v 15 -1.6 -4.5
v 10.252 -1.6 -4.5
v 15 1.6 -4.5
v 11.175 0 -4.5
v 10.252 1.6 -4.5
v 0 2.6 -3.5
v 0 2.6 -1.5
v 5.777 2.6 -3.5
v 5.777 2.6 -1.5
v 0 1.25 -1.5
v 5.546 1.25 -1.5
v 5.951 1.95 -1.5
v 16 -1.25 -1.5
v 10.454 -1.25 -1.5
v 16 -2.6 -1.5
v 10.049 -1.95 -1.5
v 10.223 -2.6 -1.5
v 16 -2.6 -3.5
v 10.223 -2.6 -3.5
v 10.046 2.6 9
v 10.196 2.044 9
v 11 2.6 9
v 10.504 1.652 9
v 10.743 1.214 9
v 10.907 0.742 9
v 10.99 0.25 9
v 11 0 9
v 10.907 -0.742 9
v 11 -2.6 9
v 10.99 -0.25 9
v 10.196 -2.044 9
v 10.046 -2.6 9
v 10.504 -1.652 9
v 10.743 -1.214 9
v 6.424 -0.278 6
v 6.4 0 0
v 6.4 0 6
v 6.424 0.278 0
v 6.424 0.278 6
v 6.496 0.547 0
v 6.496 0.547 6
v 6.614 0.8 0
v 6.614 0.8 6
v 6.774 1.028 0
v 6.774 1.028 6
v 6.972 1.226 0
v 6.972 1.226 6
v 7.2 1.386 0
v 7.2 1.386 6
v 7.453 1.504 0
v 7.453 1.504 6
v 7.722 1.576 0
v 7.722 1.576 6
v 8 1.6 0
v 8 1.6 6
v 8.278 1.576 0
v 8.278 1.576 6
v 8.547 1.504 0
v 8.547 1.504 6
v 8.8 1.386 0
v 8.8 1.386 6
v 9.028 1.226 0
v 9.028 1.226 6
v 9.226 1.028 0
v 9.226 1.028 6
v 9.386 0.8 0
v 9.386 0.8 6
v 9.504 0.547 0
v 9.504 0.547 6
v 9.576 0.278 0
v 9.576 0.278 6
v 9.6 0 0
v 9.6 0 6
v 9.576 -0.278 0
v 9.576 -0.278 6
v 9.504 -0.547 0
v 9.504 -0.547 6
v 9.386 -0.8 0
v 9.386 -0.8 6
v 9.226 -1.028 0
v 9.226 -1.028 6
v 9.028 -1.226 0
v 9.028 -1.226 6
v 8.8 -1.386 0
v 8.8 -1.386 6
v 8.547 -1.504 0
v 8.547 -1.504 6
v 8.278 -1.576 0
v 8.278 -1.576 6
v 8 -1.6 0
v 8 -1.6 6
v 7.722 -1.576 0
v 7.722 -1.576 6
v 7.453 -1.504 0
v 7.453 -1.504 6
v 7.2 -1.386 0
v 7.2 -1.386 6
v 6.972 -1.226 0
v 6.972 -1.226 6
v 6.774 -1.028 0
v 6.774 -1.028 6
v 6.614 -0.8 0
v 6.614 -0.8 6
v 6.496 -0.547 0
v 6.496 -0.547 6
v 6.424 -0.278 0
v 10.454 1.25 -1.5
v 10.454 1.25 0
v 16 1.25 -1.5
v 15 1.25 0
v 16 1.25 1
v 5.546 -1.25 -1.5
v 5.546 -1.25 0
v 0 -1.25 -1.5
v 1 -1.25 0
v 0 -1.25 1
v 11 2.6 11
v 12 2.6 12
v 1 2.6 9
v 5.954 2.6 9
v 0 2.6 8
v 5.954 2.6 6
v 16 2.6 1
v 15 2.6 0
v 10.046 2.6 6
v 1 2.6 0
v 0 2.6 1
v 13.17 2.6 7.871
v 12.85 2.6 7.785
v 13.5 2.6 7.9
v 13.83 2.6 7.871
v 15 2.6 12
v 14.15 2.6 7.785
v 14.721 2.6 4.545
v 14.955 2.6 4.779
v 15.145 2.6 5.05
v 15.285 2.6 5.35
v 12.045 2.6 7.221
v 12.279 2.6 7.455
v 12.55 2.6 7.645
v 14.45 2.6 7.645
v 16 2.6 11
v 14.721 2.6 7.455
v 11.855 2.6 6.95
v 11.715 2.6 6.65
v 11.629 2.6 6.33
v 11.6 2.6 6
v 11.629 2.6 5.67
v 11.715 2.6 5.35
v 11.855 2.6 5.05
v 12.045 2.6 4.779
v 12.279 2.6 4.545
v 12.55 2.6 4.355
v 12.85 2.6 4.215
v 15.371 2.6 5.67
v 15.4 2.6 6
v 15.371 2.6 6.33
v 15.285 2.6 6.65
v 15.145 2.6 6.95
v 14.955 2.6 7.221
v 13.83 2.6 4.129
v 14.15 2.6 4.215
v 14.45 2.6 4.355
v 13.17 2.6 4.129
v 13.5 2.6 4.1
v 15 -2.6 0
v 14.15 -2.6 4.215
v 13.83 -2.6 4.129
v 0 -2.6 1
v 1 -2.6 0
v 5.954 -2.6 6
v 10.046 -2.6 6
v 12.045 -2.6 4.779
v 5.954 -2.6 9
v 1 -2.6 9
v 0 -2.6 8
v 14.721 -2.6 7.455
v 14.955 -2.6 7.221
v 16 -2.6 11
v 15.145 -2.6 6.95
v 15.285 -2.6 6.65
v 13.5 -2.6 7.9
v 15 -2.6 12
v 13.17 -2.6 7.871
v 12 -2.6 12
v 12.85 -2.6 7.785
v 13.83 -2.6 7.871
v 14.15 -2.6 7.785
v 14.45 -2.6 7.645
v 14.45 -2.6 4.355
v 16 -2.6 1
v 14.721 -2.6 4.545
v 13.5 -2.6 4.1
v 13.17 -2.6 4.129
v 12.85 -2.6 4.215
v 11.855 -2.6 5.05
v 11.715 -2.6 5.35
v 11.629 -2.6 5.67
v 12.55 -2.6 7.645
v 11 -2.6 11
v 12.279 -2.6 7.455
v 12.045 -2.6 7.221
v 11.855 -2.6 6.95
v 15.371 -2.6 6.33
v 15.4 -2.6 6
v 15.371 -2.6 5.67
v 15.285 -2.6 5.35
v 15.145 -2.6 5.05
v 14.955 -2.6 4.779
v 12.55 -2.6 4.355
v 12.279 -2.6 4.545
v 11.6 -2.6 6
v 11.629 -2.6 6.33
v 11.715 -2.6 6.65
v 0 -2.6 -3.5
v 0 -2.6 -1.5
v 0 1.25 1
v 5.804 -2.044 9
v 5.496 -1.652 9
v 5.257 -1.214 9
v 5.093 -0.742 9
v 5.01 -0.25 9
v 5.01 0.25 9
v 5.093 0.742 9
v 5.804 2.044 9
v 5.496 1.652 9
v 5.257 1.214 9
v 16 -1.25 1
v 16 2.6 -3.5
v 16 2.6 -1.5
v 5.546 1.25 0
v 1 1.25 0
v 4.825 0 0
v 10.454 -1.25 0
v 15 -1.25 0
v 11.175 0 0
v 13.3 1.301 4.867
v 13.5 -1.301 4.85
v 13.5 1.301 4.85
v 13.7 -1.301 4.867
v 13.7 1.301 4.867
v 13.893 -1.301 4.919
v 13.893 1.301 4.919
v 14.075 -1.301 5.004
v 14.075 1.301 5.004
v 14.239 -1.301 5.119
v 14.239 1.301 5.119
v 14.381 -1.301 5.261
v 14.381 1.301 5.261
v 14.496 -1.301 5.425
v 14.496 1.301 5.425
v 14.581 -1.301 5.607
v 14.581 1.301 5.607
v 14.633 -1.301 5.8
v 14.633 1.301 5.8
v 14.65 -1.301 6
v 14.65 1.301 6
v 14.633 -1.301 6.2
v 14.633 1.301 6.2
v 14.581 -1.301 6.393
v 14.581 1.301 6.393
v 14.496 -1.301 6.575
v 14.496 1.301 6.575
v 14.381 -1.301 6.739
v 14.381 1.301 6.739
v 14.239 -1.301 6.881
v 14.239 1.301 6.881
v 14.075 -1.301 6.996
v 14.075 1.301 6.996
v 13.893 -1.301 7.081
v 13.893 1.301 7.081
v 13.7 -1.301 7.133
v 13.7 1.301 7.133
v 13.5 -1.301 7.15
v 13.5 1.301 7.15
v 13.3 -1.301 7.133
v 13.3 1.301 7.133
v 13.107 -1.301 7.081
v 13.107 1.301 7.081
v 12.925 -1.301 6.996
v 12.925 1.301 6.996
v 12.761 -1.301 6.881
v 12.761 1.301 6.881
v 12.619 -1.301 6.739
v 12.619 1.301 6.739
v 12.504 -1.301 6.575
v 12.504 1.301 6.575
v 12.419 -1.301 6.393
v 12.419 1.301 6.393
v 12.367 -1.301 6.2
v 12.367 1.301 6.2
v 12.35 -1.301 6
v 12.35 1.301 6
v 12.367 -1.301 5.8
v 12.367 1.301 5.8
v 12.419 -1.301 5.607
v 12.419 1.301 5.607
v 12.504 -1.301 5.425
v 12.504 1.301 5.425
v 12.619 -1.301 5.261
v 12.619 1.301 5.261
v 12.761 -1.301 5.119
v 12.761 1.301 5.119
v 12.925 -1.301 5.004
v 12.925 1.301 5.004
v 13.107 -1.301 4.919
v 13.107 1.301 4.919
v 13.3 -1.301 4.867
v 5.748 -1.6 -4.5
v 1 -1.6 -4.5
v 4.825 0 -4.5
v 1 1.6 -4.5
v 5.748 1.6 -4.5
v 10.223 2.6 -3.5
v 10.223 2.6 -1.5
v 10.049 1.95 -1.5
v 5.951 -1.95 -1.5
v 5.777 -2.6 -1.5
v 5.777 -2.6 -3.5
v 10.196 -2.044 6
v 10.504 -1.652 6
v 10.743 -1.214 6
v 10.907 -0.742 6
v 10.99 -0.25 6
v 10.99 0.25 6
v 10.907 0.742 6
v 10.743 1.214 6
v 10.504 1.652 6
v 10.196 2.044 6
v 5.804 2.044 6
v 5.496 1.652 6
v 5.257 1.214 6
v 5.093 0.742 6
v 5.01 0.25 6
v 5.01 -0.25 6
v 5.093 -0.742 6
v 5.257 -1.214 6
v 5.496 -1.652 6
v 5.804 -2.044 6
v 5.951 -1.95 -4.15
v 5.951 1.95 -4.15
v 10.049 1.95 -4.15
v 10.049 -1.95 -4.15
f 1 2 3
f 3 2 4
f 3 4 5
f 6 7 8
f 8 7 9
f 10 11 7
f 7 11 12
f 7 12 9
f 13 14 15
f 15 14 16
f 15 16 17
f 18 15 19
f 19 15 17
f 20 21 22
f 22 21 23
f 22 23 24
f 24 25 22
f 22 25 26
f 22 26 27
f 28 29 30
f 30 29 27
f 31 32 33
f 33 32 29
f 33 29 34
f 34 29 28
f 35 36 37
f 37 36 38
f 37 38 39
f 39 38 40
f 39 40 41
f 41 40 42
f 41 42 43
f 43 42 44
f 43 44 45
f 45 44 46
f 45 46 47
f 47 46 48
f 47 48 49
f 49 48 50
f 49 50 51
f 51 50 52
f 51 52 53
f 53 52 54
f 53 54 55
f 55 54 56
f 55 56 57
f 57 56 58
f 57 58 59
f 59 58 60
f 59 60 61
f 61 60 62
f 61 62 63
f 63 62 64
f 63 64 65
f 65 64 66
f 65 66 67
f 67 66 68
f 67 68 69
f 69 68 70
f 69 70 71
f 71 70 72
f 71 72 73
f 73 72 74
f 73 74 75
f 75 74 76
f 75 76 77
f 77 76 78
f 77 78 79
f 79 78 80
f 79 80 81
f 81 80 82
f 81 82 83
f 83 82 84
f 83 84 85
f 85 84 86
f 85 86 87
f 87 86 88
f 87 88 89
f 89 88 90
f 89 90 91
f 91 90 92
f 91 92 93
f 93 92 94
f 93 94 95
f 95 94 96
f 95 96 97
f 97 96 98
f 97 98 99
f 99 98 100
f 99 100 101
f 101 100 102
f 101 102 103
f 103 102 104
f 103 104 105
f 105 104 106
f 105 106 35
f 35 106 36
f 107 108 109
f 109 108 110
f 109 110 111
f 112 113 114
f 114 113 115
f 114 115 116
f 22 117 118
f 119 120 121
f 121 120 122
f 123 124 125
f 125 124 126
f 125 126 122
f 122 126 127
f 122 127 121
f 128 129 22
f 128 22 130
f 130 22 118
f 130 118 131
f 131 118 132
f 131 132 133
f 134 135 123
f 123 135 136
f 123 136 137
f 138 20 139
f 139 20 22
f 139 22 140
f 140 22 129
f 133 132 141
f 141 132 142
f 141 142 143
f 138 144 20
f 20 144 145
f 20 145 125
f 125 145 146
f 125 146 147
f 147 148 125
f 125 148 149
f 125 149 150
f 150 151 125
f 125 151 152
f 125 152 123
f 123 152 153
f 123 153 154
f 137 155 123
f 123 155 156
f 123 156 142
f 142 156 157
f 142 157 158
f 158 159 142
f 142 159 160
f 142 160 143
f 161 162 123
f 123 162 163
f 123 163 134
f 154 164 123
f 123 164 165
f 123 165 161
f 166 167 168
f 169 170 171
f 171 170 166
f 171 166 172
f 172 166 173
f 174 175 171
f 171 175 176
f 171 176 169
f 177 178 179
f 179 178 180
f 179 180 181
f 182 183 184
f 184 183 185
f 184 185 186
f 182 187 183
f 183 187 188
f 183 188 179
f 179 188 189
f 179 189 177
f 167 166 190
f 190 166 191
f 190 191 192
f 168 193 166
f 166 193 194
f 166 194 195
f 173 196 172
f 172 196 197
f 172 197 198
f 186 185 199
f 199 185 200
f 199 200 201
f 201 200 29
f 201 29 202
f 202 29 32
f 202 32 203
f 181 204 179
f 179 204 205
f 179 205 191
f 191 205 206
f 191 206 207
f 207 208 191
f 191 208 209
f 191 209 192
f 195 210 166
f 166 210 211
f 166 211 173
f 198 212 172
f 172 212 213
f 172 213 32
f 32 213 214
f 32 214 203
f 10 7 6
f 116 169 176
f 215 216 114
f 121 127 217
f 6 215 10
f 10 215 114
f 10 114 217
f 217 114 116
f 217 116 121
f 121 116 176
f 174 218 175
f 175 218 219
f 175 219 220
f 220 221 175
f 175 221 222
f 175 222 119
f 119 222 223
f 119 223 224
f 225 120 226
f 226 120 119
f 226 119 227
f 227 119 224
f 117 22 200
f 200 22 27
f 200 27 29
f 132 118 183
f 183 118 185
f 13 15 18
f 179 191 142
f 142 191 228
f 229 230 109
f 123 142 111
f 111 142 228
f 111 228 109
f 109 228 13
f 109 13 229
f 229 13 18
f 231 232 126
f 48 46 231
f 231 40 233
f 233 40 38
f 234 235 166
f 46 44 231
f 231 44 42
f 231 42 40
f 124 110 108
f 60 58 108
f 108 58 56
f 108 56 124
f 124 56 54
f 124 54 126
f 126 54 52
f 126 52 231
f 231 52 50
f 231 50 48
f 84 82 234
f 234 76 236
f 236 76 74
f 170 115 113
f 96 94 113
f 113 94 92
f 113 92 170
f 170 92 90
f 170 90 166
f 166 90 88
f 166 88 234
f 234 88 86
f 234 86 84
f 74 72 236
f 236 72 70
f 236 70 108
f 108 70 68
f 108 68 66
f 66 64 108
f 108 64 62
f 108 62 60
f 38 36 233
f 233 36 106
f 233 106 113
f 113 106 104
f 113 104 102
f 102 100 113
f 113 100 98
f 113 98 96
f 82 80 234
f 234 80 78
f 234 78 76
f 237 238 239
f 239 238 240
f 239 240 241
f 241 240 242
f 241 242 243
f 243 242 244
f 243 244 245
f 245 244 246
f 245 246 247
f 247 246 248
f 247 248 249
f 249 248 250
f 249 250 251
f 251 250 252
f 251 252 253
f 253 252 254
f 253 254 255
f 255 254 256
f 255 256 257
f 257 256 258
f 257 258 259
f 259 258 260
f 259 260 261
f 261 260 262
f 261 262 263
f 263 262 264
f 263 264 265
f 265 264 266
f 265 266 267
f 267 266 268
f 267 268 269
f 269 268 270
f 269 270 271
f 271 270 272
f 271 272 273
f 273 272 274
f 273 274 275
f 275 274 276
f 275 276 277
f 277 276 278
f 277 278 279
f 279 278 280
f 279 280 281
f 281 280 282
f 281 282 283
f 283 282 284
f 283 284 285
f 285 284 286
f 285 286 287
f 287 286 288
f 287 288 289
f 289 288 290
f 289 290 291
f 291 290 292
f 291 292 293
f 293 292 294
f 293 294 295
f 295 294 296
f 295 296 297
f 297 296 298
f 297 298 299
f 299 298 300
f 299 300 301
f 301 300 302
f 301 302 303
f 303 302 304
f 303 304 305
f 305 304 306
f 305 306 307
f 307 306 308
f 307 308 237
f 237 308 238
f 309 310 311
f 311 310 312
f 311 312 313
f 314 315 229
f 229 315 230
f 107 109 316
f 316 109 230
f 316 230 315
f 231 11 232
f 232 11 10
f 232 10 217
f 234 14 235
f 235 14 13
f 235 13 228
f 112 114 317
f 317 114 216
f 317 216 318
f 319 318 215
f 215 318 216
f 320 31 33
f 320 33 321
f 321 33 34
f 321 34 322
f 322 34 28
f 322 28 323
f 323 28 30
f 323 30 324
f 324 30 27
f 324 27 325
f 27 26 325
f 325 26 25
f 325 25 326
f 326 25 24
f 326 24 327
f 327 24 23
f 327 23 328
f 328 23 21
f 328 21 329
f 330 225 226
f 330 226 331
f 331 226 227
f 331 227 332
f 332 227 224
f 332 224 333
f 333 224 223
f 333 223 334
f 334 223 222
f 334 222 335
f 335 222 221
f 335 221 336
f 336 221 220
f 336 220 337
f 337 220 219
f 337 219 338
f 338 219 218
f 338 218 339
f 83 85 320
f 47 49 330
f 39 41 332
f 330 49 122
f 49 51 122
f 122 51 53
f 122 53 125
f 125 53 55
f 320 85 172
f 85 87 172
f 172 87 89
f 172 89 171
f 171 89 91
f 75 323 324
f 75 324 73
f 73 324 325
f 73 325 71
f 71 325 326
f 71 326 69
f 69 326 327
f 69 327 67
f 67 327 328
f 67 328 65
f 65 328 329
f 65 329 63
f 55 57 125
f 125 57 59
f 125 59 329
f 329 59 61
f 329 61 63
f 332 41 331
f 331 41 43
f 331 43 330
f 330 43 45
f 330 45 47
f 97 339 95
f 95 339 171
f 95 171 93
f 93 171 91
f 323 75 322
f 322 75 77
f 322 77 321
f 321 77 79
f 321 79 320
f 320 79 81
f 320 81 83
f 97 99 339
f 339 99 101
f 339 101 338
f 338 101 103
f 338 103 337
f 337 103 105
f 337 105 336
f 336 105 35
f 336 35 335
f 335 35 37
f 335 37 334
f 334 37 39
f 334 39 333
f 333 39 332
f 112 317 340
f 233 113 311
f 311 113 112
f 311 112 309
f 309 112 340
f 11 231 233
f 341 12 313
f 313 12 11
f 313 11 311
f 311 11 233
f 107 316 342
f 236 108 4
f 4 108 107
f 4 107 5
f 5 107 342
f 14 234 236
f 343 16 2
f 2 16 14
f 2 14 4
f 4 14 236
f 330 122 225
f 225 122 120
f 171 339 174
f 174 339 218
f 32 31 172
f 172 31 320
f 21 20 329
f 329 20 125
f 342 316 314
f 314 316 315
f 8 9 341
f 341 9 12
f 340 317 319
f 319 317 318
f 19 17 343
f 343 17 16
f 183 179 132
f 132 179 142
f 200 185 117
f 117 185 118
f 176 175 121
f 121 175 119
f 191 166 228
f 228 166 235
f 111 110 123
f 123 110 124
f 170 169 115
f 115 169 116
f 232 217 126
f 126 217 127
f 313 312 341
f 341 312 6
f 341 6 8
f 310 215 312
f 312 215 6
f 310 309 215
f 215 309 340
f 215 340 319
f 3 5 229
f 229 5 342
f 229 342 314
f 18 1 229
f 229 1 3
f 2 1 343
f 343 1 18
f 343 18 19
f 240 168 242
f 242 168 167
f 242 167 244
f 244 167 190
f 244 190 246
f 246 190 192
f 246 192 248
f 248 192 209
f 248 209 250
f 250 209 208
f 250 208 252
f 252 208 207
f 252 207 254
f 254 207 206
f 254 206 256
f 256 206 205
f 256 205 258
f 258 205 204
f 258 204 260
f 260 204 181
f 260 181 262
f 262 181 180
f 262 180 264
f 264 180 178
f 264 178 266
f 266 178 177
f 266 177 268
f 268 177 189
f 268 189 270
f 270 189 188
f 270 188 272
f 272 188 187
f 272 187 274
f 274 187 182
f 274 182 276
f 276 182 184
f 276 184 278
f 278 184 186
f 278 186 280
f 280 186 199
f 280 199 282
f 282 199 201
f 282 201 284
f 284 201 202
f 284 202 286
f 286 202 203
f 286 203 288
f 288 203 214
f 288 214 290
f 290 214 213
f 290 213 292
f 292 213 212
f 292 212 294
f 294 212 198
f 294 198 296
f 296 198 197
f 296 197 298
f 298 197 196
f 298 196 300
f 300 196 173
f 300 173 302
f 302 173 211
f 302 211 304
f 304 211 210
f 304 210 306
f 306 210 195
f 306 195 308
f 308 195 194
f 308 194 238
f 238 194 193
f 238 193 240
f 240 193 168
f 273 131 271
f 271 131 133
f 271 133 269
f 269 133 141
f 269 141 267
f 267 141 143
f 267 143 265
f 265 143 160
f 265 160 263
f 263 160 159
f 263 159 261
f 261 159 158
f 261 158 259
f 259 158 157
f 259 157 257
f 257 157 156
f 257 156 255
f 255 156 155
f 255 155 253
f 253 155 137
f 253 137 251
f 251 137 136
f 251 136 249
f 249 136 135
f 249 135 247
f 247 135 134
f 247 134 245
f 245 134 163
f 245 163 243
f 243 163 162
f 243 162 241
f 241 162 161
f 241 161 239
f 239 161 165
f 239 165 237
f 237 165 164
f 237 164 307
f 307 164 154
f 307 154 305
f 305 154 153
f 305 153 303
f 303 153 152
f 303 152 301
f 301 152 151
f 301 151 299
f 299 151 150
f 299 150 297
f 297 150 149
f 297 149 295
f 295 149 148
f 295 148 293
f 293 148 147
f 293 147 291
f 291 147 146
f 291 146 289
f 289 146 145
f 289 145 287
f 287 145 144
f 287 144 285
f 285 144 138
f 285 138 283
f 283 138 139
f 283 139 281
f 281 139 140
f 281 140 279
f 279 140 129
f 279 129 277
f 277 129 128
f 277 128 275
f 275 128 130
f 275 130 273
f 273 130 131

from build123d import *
from OCP.BRepFilletAPI import BRepFilletAPI_MakeChamfer

# Parameters (mm, degrees)
SKETCH1_R           = 1.15
BOSS_EXTRUDE1_DEPTH = 2.6
BOSS_EXTRUDE2_DEPTH = 16
SKETCH3_R           = 1.6
CUT_EXTRUDE1_DEPTH  = 24.13028318
SKETCH4_R           = 3
CUT_EXTRUDE2_DEPTH  = 3
CUT_EXTRUDE3_REACH  = 25.13
CHAMFER1_SIZE       = 0.549227511
CHAMFER1_SIZE_2     = 0.549038106
CHAMFER1_SIZE_3     = 0.75
CHAMFER2_SIZE       = 1
CHAMFER3_SIZE       = 0.75
CHAMFER3_SIZE2      = 1.299038106


with BuildPart() as part:
    # Sketch1 → Boss-Extrude1 (new, symmetric)
    with BuildSketch(Plane(origin=(0, 0, 0), x_dir=(1, 0, 0), z_dir=(0, 1, 0))):
        Polygon((0, 0), (16, 0), (16, -12), (11, -12), (11, -9), (0, -9), align=None)
        with Locations(Location((13.5, -6, 0), (0, 0, 270))):
            Circle(SKETCH1_R, mode=Mode.SUBTRACT)
    extrude(amount=BOSS_EXTRUDE1_DEPTH, both=True)

    # Sketch2 → Boss-Extrude2 (add)
    with BuildSketch(Plane.ZY):
        Polygon((-1.5, -1.25), (-1.5, -2.6), (-4.5, -2.6), (-4.5, 2.6), (-1.5, 2.6), (-1.5, 1.25), (0, 1.25), (0, -1.25), align=None)
    extrude(amount=-BOSS_EXTRUDE2_DEPTH)

    # Sketch3 → Cut-Extrude1 (cut, through all)
    with BuildSketch(Plane(origin=(0, 0, -4.5), x_dir=(-1, 0, 0), z_dir=(0, 0, -1))):
        with Locations((-8, 0)):
            Circle(SKETCH3_R)
    extrude(amount=-CUT_EXTRUDE1_DEPTH, mode=Mode.SUBTRACT)

    # Sketch4 → Cut-Extrude2 (cut)
    with BuildSketch(Plane.XY.offset(9)):
        with Locations((8, 0)):
            Circle(SKETCH4_R)
    extrude(amount=-CUT_EXTRUDE2_DEPTH, mode=Mode.SUBTRACT)

    # Cut-Extrude3: up to this face of the body (flat: up to its plane)
    cut_extrude3_end = Plane(part.part.faces().sort_by_distance((8, 1.937058452, 0))[0])
    # Sketch5 → Cut-Extrude3 (cut, up to the picked face)
    with BuildSketch(Plane(origin=(0, 0, -4.5), x_dir=(-1, 0, 0), z_dir=(0, 0, -1)), mode=Mode.PRIVATE) as cut_extrude3_sk1:
        Polygon((-4.824573519, 0), (-6.41228676, 2.75), (-9.58771324, 2.75), (-11.175426481, 0), (-9.58771324, -2.75), (-6.41228676, -2.75), align=None)
    cut_extrude3_tool1 = split(extrude(cut_extrude3_sk1.sketch, amount=-CUT_EXTRUDE3_REACH, mode=Mode.PRIVATE), bisect_by=cut_extrude3_end, keep=Keep.BOTH, mode=Mode.PRIVATE)
    add(cut_extrude3_tool1.solids().sort_by(Axis((8, 0, -4.5), (0, 0, 1)))[0], mode=Mode.SUBTRACT)

    # Chamfer1
    # the kernel refuses this chamfer: 0.75, 0.549227511, 0.549038106 mm, written as the material it takes off along each edge
    with BuildSketch(Plane(origin=(9.496662955, 2.6, 6), x_dir=(0.7827857508590854, -0.6222913049786071, 0), z_dir=(0, 0, 1)), Plane(origin=(6.503337045, -2.6, 6), x_dir=(-0.7827857508590857, 0.6222913049786067, 0), z_dir=(0, 0, 1))) as chamfer1_piece_1:
        with BuildLine():
            Line((0.892781916, 0), (CHAMFER1_SIZE * 0.782785751548, CHAMFER1_SIZE * 0.622291305526))
            Line((CHAMFER1_SIZE * 0.782785751548, CHAMFER1_SIZE * 0.622291305526), (0, 0))
            ThreePointArc((0, 0), (0.458630217, 0.033371738), (0.892781916, 0))
        make_face()
    extrude(amount=5.292721472, mode=Mode.SUBTRACT)
    with BuildSketch(Plane(origin=(9.496662955, -2.6, 6), x_dir=(0.7827857508590856, 0.6222913049786071, 0), z_dir=(0, 0, 1)), Plane(origin=(6.503337045, 2.6, 6), x_dir=(-0.7827857508590856, -0.622291304978607, 0), z_dir=(0, 0, 1))) as chamfer1_piece_2:
        with BuildLine():
            Line((0.892781916, 0), (CHAMFER1_SIZE * 0.782785751548, -CHAMFER1_SIZE * 0.622291305526))
            Line((CHAMFER1_SIZE * 0.782785751548, -CHAMFER1_SIZE * 0.622291305526), (0, 0))
            ThreePointArc((0, 0), (0.458630217, -0.033371738), (0.892781916, 0))
        make_face()
    extrude(amount=5.292721472, mode=Mode.SUBTRACT)
    with BuildSketch(Plane(origin=(6.325684219, -2.6, -6.428762241), x_dir=(-1, 0, 0), z_dir=(0, 0, 1)), Plane(origin=(9.674315781, -2.6, -1.5), x_dir=(1, 0, 0), z_dir=(0, 0, -1)), Plane(origin=(9.674315781, 2.6, -6.428762241), x_dir=(1, 0, 0), z_dir=(0, 0, 1)), Plane(origin=(6.325684219, 2.6, -1.5), x_dir=(-1, 0, 0), z_dir=(0, 0, -1))) as chamfer1_piece_3:
        Polygon((CHAMFER1_SIZE_2, 0), (CHAMFER1_SIZE_3 * 0.5, -CHAMFER1_SIZE_3 * 0.866025403784), (0, 0), align=None)
    extrude(amount=4.928762241, mode=Mode.SUBTRACT)

    # Chamfer2
    chamfer2_edges = [part.edges().sort_by_distance(p)[0] for p in [
        (16, 0, 12),
        (11, 0, 12),
        (0, 0, 9),
        (16, -1.925, 0),
        (16, 1.925, 0),
        (0, -1.925, 0),
        (0, 1.925, 0),
        (2.888323057, -2.6, -4.5),
        (0, 0, -4.5),
        (16, 0, -4.5),
        (2.888323057, 2.6, -4.5),
        (13.111676943, -2.6, -4.5),
        (13.111676943, 2.6, -4.5),
    ]]
    chamfer(chamfer2_edges, length=CHAMFER2_SIZE)

    # Chamfer3: one chamfer whose edges measure the first distance from different faces: ONE call of the kernel's chamfer builder (chamfer() names one face for all edges)
    chamfer3_edges_1 = [part.edges().sort_by_distance(p)[0] for p in [
        (13.5, -2.6, 4.85),
    ]]
    chamfer3_side_1 = [part.faces().sort_by_distance(p)[0] for p in [
        (8.413951701, -2.6, 4.798840105),
    ]]
    chamfer3_edges_2 = [part.edges().sort_by_distance(p)[0] for p in [
        (13.5, 2.6, 4.85),
    ]]
    chamfer3_side_2 = [part.faces().sort_by_distance(p)[0] for p in [
        (8.413951701, 2.6, 4.798840105),
    ]]
    chamfer3 = BRepFilletAPI_MakeChamfer(part.part.solid().wrapped)
    for e in chamfer3_edges_1:
        chamfer3.Add(CHAMFER3_SIZE, CHAMFER3_SIZE2, e.wrapped, chamfer3_side_1[0].wrapped)  # the first distance lies on this face
    for e in chamfer3_edges_2:
        chamfer3.Add(CHAMFER3_SIZE, CHAMFER3_SIZE2, e.wrapped, chamfer3_side_2[0].wrapped)  # the first distance lies on this face
    add(Compound.cast(chamfer3.Shape()), mode=Mode.REPLACE)


solid = part.part
